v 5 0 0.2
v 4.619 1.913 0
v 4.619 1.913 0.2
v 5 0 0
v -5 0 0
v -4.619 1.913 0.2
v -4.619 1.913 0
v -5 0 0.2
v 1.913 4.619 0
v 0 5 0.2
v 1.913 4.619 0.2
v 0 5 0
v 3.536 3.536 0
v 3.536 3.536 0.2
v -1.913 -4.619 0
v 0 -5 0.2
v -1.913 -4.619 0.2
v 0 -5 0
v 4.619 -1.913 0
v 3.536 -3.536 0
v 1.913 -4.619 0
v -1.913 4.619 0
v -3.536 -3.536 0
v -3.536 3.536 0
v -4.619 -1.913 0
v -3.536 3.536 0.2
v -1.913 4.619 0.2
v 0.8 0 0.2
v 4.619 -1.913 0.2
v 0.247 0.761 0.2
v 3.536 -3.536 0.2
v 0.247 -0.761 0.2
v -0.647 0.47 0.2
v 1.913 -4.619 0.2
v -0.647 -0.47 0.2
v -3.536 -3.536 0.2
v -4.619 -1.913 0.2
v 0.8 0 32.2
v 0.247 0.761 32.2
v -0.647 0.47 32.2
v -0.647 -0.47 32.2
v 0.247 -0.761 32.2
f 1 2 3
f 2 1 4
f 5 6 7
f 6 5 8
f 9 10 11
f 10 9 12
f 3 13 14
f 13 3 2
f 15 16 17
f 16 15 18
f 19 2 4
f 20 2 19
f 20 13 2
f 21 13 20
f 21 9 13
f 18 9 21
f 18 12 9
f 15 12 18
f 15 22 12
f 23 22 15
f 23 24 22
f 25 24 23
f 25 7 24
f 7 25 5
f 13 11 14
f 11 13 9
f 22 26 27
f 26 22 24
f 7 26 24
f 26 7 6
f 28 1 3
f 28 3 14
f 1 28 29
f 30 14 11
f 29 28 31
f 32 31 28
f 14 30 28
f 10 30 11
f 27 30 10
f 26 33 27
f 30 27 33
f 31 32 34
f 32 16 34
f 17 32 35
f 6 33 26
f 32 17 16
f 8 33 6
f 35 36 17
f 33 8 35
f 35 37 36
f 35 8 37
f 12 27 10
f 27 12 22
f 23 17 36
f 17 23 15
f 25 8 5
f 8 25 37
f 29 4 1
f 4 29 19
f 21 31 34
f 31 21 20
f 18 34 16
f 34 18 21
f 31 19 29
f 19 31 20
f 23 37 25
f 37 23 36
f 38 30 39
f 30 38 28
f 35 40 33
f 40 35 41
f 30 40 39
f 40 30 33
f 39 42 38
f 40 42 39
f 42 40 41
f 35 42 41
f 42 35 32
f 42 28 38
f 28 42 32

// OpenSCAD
// -*- mode: SCAD ; c-file-style: "ellemtel" ; coding: utf-8 -*-
//
// NN
//
// © 2017 Roland Sieker <ospalh@gmail.com>
// Licence: CC-BY-SA 4.0



cylinder(r=5, h=0.2);
cylinder(r=0.8, h=32.2);
